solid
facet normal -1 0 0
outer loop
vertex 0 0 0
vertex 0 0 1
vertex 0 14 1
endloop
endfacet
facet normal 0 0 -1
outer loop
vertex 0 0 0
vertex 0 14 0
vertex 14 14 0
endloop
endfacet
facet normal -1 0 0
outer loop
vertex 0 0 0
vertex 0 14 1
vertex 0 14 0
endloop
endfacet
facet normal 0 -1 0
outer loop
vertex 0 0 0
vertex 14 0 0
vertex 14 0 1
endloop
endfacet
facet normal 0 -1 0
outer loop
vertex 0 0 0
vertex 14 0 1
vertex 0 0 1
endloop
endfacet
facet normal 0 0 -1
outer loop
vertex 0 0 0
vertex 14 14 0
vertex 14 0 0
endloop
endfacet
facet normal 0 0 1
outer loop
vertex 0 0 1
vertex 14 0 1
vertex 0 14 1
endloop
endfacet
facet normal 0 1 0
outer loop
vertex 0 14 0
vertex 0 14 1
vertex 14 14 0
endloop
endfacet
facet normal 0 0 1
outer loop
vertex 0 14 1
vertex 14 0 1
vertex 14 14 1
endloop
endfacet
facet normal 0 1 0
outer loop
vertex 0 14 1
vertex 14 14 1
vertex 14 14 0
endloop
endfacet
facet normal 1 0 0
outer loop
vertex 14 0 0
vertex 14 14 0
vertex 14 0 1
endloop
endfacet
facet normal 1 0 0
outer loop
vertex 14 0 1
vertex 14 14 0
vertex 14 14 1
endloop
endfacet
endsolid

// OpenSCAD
/* Warning, this is a very basic generator with a lot of approximation 
input data : [TQFP, 3VB, 14x14x1.0mm, 100, , A, C04-21499A]
generated by com.zoubworld.electronics.cad.model3d.Basic
Date : Sun Feb 15 10:50:49 CET 2026
*/

//body
color("black")
translate([0,0,0])
cube([14.0,14.0,1.0], center=false);
